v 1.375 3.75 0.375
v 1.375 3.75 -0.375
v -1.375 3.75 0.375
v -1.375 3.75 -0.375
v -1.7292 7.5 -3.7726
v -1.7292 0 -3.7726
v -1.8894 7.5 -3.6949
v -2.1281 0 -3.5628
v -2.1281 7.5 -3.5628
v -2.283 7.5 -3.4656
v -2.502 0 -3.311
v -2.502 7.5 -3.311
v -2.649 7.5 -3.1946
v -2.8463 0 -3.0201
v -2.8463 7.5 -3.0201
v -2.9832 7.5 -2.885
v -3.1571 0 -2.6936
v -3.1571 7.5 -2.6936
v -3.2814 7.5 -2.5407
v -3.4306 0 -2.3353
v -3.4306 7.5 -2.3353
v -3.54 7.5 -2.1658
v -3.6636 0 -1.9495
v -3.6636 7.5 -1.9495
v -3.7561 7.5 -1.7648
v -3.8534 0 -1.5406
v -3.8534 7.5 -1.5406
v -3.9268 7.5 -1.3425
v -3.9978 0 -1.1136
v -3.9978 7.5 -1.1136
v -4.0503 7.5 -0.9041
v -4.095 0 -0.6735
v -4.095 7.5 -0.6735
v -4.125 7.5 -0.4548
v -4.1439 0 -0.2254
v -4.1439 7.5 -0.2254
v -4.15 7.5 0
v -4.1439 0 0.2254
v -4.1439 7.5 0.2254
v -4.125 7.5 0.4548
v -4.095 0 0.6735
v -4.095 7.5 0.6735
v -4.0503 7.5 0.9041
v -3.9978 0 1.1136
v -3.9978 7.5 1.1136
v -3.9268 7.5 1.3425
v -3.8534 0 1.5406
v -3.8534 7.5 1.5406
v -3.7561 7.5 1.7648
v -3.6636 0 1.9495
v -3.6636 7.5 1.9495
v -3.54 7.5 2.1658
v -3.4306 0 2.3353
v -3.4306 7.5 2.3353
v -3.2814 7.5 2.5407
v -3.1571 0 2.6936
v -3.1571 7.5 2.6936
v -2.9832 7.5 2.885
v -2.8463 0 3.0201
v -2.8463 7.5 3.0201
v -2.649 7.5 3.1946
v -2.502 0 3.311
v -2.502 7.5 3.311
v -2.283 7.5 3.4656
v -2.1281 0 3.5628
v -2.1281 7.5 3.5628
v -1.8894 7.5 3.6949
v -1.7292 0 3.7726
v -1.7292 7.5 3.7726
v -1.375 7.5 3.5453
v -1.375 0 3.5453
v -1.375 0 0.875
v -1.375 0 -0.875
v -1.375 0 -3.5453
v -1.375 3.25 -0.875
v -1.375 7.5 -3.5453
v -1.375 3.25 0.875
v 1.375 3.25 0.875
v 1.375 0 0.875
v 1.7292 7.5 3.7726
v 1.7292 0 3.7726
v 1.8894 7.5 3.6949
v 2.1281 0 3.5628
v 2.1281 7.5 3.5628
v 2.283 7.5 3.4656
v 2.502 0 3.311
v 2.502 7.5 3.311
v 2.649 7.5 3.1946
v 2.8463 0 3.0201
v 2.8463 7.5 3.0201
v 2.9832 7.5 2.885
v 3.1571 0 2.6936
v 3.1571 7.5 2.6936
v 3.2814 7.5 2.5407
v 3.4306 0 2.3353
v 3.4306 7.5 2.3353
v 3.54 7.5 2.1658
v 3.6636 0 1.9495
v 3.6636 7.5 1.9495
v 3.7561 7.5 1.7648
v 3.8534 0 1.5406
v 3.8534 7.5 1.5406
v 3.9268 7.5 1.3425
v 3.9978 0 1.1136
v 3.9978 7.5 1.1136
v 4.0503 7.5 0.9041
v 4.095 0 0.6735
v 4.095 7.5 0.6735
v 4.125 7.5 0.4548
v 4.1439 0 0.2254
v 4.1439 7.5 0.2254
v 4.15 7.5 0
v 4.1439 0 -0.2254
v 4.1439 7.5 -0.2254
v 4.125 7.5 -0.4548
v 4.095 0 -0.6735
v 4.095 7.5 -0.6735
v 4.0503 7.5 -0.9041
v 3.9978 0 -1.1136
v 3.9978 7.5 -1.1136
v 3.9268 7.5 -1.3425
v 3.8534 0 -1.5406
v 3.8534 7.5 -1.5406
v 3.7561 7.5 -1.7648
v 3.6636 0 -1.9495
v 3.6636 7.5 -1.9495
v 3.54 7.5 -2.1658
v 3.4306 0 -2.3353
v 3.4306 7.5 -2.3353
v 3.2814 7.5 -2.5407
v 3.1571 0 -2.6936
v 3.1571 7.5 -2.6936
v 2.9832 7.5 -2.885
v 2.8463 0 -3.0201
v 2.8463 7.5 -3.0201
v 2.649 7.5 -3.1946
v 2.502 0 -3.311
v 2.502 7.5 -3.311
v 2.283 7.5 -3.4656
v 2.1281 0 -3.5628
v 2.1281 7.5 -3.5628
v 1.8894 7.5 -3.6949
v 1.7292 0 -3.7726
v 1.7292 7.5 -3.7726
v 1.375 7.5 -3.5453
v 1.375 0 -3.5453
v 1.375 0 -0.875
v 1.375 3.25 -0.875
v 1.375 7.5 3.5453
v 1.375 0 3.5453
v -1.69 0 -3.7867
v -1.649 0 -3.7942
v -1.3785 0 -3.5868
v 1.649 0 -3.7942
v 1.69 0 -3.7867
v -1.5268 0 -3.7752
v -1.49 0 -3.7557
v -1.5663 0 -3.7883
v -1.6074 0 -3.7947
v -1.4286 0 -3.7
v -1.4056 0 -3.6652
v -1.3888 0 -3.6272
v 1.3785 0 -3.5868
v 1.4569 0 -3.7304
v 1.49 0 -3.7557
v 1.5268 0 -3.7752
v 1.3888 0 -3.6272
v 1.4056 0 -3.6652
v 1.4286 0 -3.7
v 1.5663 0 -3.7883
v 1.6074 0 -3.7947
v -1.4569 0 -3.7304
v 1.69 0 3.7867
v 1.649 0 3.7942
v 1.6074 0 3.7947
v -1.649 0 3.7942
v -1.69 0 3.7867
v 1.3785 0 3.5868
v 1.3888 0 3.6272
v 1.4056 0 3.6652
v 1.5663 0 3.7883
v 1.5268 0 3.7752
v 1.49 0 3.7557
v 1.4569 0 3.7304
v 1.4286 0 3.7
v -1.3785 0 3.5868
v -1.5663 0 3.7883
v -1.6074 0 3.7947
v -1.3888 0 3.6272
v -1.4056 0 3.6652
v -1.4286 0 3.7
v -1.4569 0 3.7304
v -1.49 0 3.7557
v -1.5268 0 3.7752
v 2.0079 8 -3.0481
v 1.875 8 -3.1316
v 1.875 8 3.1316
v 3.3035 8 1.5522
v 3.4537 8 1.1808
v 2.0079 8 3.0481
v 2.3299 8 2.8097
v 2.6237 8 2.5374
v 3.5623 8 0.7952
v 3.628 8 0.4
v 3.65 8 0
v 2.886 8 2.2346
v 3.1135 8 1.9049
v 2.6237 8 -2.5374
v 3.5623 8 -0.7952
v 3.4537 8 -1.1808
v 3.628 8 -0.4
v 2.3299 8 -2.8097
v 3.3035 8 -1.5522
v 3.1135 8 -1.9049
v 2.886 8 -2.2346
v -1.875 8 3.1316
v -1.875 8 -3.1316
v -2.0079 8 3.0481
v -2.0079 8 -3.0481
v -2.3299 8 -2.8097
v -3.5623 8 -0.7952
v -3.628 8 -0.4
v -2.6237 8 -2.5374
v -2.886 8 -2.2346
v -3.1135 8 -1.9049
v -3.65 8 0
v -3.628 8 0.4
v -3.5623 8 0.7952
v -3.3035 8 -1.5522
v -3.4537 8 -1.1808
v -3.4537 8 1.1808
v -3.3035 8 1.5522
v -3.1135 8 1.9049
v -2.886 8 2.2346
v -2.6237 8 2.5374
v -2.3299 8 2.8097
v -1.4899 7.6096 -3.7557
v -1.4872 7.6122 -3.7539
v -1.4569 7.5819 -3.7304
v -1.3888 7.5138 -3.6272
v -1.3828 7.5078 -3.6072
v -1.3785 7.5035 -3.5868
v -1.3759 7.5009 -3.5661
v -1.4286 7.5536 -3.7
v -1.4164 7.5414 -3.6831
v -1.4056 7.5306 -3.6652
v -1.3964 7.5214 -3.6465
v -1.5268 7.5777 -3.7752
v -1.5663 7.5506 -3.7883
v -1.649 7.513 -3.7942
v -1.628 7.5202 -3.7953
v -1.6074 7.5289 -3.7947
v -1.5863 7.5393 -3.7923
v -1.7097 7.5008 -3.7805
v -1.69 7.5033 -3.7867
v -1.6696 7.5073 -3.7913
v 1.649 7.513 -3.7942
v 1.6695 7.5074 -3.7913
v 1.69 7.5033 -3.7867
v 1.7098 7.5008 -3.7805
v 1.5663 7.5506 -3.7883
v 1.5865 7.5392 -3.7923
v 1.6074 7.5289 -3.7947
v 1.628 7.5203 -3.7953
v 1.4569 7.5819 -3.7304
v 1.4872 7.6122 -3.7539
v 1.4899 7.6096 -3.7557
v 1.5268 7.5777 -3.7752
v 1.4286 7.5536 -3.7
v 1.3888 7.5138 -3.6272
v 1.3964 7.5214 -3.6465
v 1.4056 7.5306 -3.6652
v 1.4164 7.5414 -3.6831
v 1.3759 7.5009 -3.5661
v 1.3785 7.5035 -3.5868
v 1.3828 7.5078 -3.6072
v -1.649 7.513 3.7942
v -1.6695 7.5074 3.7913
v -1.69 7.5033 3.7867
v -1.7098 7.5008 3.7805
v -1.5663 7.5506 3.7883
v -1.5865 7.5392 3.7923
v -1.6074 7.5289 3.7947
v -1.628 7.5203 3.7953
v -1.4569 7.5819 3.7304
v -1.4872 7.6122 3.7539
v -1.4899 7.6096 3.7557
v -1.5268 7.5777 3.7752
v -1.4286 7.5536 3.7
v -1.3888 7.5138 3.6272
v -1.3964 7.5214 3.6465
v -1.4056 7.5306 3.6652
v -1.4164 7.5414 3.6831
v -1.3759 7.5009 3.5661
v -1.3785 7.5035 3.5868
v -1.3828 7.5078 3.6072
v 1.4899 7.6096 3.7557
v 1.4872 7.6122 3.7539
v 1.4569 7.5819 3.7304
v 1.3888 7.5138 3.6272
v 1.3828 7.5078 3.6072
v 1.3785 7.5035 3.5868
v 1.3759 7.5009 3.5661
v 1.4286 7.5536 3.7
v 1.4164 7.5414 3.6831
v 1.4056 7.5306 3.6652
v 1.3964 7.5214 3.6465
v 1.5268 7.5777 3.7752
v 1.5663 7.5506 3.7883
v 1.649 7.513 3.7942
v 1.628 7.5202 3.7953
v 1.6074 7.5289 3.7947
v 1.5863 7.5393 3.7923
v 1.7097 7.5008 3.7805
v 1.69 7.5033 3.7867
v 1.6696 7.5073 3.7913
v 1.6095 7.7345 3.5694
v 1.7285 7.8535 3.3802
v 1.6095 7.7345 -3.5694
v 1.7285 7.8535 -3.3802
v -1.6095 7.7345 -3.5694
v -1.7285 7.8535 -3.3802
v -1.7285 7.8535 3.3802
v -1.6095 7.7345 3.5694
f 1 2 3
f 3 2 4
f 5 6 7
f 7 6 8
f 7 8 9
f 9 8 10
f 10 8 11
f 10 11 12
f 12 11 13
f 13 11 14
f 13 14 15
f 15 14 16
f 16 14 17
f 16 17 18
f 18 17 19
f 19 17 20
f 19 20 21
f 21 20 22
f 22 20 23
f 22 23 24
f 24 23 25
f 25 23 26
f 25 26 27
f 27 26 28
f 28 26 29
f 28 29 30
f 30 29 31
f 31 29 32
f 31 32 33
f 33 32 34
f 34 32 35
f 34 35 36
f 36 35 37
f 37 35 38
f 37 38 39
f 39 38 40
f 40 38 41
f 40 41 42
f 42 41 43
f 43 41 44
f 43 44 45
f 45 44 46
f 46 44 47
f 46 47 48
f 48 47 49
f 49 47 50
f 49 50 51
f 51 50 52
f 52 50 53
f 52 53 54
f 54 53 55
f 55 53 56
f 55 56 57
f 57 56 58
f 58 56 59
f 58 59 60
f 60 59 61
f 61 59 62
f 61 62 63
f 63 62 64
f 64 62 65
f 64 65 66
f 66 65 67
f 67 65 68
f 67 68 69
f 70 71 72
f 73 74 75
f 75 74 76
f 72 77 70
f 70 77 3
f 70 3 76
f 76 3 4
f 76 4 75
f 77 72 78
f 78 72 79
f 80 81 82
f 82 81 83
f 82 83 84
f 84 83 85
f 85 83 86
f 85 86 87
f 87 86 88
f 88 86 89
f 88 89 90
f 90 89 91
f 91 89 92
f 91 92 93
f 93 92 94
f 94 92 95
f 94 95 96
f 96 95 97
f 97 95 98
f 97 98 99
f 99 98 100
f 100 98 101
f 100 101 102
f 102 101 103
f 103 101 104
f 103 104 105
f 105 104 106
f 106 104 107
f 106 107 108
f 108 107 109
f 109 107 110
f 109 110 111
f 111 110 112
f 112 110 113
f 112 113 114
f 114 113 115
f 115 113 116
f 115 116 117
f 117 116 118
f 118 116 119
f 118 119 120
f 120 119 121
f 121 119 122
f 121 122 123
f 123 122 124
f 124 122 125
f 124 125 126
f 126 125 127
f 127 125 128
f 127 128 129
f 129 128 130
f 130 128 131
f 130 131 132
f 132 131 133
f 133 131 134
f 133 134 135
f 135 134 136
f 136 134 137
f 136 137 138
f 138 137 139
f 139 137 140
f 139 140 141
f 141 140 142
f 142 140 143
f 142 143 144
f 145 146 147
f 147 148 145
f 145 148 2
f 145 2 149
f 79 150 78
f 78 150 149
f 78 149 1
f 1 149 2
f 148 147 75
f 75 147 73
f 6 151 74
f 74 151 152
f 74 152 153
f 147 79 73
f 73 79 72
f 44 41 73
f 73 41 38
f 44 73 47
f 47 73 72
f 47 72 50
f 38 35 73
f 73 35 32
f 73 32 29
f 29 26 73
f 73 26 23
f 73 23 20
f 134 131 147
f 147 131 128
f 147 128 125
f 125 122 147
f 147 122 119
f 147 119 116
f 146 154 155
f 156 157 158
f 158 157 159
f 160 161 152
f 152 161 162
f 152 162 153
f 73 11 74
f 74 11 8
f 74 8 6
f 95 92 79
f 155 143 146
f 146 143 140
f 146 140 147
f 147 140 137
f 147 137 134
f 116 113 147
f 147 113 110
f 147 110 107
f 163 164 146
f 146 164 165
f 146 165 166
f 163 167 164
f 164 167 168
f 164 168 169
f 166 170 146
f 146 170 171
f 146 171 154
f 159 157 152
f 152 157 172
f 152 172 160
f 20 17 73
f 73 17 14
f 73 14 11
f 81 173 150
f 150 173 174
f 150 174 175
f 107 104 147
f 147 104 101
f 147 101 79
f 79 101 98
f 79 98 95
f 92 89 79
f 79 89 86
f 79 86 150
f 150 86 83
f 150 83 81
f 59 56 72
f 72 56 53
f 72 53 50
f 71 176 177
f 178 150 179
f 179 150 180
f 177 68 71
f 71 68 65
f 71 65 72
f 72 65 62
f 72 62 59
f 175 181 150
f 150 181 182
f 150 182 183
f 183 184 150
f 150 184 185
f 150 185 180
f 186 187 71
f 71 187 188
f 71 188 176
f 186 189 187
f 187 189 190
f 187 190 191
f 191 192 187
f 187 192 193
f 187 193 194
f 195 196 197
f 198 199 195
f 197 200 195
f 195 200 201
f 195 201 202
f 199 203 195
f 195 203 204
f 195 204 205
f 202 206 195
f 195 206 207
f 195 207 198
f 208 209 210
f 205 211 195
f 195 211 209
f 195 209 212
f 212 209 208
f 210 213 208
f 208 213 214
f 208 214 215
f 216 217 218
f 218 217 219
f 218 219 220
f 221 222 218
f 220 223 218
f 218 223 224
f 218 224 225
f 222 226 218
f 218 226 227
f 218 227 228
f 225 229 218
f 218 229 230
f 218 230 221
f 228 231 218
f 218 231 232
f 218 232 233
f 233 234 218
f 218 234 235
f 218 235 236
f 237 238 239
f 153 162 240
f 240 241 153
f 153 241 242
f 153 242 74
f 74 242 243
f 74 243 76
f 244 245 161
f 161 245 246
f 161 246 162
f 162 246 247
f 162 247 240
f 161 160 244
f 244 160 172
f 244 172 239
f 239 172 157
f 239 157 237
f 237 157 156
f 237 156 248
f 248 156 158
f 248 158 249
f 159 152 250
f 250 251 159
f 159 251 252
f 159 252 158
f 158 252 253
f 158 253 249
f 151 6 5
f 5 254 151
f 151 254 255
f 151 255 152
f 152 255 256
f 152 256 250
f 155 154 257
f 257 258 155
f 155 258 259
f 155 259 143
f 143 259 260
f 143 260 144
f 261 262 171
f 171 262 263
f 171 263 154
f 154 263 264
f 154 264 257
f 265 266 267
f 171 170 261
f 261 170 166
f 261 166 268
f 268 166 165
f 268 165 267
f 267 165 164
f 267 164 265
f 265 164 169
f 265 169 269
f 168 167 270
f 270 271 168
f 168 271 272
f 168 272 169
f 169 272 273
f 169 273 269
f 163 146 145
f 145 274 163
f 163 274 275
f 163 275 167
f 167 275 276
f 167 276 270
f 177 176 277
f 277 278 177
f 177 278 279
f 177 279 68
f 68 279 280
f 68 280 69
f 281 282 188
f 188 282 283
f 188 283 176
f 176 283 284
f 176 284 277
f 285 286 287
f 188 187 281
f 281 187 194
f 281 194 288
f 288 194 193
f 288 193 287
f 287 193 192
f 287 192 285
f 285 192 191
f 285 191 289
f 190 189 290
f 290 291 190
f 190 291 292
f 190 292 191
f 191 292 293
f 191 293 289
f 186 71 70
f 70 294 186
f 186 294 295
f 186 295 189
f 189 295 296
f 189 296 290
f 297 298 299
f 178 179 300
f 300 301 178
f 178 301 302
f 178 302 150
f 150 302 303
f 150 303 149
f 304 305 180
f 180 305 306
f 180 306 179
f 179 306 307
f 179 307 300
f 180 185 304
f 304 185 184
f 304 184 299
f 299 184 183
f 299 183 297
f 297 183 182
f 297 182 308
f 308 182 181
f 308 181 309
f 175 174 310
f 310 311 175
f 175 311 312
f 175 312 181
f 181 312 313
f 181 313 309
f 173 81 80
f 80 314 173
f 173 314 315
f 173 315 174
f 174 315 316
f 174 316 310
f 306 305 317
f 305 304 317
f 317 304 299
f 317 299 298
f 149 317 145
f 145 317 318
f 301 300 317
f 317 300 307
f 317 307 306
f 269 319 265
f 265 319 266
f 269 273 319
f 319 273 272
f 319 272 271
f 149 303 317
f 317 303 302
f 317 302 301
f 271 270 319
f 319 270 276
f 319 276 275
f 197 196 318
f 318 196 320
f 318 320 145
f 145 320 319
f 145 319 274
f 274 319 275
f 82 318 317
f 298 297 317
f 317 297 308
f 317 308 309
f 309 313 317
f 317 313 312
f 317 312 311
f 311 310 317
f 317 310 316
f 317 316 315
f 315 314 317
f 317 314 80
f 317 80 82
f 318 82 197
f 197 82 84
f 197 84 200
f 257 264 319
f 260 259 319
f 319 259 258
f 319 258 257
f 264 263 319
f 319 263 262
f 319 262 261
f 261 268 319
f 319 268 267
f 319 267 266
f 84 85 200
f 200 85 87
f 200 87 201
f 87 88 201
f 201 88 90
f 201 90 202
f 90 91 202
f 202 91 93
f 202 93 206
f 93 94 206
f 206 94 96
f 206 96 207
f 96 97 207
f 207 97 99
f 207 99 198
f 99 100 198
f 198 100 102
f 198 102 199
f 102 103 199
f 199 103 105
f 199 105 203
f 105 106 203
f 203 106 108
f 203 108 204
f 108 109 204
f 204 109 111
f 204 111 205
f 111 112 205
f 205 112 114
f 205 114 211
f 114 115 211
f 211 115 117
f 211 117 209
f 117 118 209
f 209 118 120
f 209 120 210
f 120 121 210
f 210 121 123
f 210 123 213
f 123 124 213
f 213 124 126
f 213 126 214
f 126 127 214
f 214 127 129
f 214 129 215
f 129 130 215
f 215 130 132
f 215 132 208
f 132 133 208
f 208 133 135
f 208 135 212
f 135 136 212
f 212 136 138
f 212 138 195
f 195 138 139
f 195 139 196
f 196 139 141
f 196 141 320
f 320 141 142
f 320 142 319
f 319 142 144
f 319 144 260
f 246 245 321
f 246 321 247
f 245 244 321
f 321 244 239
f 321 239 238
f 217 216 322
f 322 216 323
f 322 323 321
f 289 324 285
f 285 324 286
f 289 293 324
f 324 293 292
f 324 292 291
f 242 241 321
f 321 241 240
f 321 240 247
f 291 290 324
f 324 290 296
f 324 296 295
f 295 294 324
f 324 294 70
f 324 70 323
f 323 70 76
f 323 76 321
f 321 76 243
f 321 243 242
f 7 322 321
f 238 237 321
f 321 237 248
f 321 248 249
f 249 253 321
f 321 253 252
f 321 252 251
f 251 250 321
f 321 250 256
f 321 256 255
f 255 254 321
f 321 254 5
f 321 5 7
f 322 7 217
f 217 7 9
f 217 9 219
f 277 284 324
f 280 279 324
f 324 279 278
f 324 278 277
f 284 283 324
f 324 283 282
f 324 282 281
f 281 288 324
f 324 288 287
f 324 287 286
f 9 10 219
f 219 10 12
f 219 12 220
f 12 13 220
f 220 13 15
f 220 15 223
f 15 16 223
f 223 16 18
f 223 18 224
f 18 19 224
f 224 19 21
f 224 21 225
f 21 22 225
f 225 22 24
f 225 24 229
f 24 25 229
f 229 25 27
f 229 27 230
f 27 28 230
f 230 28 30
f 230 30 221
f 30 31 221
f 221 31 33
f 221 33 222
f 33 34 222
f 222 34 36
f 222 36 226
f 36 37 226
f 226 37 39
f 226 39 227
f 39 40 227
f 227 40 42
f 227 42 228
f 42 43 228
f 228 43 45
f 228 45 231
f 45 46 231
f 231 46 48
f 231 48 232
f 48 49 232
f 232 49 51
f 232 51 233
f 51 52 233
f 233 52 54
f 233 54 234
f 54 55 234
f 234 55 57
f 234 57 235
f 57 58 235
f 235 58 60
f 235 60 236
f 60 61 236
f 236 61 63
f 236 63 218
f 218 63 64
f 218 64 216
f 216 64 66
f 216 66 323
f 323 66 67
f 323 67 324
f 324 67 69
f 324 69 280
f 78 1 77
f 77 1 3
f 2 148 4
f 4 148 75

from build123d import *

# Parameters (mm, degrees)
SKETCH1_W           = 2.75
SKETCH1_H           = 1.75
BOSS_EXTRUDE1_DEPTH = 3.75
BOSS_EXTRUDE2_DEPTH = 4.25
FILLET1_R           = 0.25
CHAMFER1_SIZE       = 0.5


with BuildPart() as part:
    # Sketch1 → Boss-Extrude1 (new body)
    with BuildSketch(Plane(origin=(0, 0, 0), x_dir=(1, 0, 0), z_dir=(0, 1, 0))):
        with BuildLine():
            Line((-1.375, 0.875), (-1.375, 3.915593825))
            ThreePointArc((-1.375, 3.915593825), (-4.15, 0), (-1.375, -3.915593825))
            Line((-1.375, -3.915593825), (-1.375, -0.875))
            Line((-1.375, -0.875), (-1.375, 0.875))
        make_face()
        with BuildLine():
            ThreePointArc((4.15, 0), (3.385908298, 2.399609343), (1.375, 3.915593825))
            Line((1.375, 3.915593825), (1.375, 0.875))
            Line((1.375, 0.875), (1.375, -0.875))
            Line((1.375, -0.875), (1.375, -3.915593825))
            ThreePointArc((1.375, -3.915593825), (3.385908298, -2.399609343), (4.15, 0))
        make_face()
        Rectangle(SKETCH1_W, SKETCH1_H)
    extrude(amount=BOSS_EXTRUDE1_DEPTH)

    # Sketch2 → Boss-Extrude2 (add)
    with BuildSketch(Plane(origin=(0, 3.75, 0), x_dir=(1, 0, 0), z_dir=(0, 1, 0))):
        with BuildLine():
            Line((1.375, -0.875), (1.375, 0.875))
            Line((1.375, 0.875), (1.375, 3.915593825))
            ThreePointArc((1.375, 3.915593825), (4.15, 0), (1.375, -3.915593825))
            Line((1.375, -3.915593825), (1.375, -0.875))
        make_face()
        with BuildLine():
            Line((-1.375, 0.875), (-1.375, -0.875))
            Line((-1.375, -0.875), (-1.375, -3.915593825))
            ThreePointArc((-1.375, -3.915593825), (-4.15, 0), (-1.375, 3.915593825))
            Line((-1.375, 3.915593825), (-1.375, 0.875))
        make_face()
    extrude(amount=BOSS_EXTRUDE2_DEPTH)

    # Fillet1
    fillet1_edges = [part.edges().sort_by_distance(p)[0] for p in [
        (1.375, 4, -3.915593825),
        (1.375, 4, 3.915593825),
        (-1.375, 4, 3.915593825),
        (-1.375, 4, -3.915593825),
    ]]
    fillet(fillet1_edges, radius=FILLET1_R)

    # Chamfer1
    # the kernel refuses this chamfer: 0.5 mm, written as the material it takes off along each edge
    with BuildSketch(Plane(origin=(0, 8, 0), x_dir=(0.11938589143460555, 0, -0.99284792839909), z_dir=(-0.99284792839909, 0, -0.11938589143460555))) as chamfer1_piece_1:
        Polygon((4.15, CHAMFER1_SIZE), (4.15 - CHAMFER1_SIZE, 0), (4.15, 0), align=None)
    revolve(axis=Axis((0, 8, 0), (0, -1, 0)), revolution_arc=166.286676069, mode=Mode.SUBTRACT)
    with BuildSketch(Plane(origin=(1.375, 8, 4.831172931), x_dir=(-0.02749587661058651, -0.9996219169112968, 0), z_dir=(0, 0, -1)), Plane(origin=(-1.375, 8, -4.831172931), x_dir=(0.02749587661058651, -0.9996219169112968, 0), z_dir=(0, 0, 1))) as chamfer1_piece_2:
        Polygon((CHAMFER1_SIZE * 0.999621916911, -CHAMFER1_SIZE * 0.0274958766106), (-CHAMFER1_SIZE * 0.0274958766106, -CHAMFER1_SIZE * 0.999621916911), (0, 0), align=None)
    extrude(amount=9.662345862, mode=Mode.SUBTRACT)
    with BuildSketch(Plane(origin=(0, 8, 0), x_dir=(-0.11938589143460458, 0, 0.9928479283990902), z_dir=(0.9928479283990902, 0, 0.11938589143460458))) as chamfer1_piece_3:
        Polygon((4.15 - CHAMFER1_SIZE, 0), (4.15, CHAMFER1_SIZE), (4.15, 0), align=None)
    revolve(axis=Axis((0, 8, 0), (0, -1, 0)), revolution_arc=166.286676069, mode=Mode.SUBTRACT)
    with BuildSketch(Plane(origin=(-1.375, 3.75, 0.875), x_dir=(0, -0.9996219169112968, 0.02749587661058627), z_dir=(1, 0, 0))) as chamfer1_piece_4:
        Polygon((CHAMFER1_SIZE * 0.999621916911, CHAMFER1_SIZE * 0.0274958766106), (-CHAMFER1_SIZE * 0.0274958766106, CHAMFER1_SIZE * 0.999621916911), (0, 0), align=None)
    extrude(amount=2.75, mode=Mode.SUBTRACT)
    with BuildSketch(Plane(origin=(1.375, 3.75, -0.875), x_dir=(0, 0.027495876610586487, 0.9996219169112968), z_dir=(-1, 0, 0))) as chamfer1_piece_5:
        Polygon((CHAMFER1_SIZE * 0.999621916911, -CHAMFER1_SIZE * 0.0274958766106), (-CHAMFER1_SIZE * 0.0274958766106, -CHAMFER1_SIZE * 0.999621916911), (0, 0), align=None)
    extrude(amount=2.75, mode=Mode.SUBTRACT)


solid = part.part
